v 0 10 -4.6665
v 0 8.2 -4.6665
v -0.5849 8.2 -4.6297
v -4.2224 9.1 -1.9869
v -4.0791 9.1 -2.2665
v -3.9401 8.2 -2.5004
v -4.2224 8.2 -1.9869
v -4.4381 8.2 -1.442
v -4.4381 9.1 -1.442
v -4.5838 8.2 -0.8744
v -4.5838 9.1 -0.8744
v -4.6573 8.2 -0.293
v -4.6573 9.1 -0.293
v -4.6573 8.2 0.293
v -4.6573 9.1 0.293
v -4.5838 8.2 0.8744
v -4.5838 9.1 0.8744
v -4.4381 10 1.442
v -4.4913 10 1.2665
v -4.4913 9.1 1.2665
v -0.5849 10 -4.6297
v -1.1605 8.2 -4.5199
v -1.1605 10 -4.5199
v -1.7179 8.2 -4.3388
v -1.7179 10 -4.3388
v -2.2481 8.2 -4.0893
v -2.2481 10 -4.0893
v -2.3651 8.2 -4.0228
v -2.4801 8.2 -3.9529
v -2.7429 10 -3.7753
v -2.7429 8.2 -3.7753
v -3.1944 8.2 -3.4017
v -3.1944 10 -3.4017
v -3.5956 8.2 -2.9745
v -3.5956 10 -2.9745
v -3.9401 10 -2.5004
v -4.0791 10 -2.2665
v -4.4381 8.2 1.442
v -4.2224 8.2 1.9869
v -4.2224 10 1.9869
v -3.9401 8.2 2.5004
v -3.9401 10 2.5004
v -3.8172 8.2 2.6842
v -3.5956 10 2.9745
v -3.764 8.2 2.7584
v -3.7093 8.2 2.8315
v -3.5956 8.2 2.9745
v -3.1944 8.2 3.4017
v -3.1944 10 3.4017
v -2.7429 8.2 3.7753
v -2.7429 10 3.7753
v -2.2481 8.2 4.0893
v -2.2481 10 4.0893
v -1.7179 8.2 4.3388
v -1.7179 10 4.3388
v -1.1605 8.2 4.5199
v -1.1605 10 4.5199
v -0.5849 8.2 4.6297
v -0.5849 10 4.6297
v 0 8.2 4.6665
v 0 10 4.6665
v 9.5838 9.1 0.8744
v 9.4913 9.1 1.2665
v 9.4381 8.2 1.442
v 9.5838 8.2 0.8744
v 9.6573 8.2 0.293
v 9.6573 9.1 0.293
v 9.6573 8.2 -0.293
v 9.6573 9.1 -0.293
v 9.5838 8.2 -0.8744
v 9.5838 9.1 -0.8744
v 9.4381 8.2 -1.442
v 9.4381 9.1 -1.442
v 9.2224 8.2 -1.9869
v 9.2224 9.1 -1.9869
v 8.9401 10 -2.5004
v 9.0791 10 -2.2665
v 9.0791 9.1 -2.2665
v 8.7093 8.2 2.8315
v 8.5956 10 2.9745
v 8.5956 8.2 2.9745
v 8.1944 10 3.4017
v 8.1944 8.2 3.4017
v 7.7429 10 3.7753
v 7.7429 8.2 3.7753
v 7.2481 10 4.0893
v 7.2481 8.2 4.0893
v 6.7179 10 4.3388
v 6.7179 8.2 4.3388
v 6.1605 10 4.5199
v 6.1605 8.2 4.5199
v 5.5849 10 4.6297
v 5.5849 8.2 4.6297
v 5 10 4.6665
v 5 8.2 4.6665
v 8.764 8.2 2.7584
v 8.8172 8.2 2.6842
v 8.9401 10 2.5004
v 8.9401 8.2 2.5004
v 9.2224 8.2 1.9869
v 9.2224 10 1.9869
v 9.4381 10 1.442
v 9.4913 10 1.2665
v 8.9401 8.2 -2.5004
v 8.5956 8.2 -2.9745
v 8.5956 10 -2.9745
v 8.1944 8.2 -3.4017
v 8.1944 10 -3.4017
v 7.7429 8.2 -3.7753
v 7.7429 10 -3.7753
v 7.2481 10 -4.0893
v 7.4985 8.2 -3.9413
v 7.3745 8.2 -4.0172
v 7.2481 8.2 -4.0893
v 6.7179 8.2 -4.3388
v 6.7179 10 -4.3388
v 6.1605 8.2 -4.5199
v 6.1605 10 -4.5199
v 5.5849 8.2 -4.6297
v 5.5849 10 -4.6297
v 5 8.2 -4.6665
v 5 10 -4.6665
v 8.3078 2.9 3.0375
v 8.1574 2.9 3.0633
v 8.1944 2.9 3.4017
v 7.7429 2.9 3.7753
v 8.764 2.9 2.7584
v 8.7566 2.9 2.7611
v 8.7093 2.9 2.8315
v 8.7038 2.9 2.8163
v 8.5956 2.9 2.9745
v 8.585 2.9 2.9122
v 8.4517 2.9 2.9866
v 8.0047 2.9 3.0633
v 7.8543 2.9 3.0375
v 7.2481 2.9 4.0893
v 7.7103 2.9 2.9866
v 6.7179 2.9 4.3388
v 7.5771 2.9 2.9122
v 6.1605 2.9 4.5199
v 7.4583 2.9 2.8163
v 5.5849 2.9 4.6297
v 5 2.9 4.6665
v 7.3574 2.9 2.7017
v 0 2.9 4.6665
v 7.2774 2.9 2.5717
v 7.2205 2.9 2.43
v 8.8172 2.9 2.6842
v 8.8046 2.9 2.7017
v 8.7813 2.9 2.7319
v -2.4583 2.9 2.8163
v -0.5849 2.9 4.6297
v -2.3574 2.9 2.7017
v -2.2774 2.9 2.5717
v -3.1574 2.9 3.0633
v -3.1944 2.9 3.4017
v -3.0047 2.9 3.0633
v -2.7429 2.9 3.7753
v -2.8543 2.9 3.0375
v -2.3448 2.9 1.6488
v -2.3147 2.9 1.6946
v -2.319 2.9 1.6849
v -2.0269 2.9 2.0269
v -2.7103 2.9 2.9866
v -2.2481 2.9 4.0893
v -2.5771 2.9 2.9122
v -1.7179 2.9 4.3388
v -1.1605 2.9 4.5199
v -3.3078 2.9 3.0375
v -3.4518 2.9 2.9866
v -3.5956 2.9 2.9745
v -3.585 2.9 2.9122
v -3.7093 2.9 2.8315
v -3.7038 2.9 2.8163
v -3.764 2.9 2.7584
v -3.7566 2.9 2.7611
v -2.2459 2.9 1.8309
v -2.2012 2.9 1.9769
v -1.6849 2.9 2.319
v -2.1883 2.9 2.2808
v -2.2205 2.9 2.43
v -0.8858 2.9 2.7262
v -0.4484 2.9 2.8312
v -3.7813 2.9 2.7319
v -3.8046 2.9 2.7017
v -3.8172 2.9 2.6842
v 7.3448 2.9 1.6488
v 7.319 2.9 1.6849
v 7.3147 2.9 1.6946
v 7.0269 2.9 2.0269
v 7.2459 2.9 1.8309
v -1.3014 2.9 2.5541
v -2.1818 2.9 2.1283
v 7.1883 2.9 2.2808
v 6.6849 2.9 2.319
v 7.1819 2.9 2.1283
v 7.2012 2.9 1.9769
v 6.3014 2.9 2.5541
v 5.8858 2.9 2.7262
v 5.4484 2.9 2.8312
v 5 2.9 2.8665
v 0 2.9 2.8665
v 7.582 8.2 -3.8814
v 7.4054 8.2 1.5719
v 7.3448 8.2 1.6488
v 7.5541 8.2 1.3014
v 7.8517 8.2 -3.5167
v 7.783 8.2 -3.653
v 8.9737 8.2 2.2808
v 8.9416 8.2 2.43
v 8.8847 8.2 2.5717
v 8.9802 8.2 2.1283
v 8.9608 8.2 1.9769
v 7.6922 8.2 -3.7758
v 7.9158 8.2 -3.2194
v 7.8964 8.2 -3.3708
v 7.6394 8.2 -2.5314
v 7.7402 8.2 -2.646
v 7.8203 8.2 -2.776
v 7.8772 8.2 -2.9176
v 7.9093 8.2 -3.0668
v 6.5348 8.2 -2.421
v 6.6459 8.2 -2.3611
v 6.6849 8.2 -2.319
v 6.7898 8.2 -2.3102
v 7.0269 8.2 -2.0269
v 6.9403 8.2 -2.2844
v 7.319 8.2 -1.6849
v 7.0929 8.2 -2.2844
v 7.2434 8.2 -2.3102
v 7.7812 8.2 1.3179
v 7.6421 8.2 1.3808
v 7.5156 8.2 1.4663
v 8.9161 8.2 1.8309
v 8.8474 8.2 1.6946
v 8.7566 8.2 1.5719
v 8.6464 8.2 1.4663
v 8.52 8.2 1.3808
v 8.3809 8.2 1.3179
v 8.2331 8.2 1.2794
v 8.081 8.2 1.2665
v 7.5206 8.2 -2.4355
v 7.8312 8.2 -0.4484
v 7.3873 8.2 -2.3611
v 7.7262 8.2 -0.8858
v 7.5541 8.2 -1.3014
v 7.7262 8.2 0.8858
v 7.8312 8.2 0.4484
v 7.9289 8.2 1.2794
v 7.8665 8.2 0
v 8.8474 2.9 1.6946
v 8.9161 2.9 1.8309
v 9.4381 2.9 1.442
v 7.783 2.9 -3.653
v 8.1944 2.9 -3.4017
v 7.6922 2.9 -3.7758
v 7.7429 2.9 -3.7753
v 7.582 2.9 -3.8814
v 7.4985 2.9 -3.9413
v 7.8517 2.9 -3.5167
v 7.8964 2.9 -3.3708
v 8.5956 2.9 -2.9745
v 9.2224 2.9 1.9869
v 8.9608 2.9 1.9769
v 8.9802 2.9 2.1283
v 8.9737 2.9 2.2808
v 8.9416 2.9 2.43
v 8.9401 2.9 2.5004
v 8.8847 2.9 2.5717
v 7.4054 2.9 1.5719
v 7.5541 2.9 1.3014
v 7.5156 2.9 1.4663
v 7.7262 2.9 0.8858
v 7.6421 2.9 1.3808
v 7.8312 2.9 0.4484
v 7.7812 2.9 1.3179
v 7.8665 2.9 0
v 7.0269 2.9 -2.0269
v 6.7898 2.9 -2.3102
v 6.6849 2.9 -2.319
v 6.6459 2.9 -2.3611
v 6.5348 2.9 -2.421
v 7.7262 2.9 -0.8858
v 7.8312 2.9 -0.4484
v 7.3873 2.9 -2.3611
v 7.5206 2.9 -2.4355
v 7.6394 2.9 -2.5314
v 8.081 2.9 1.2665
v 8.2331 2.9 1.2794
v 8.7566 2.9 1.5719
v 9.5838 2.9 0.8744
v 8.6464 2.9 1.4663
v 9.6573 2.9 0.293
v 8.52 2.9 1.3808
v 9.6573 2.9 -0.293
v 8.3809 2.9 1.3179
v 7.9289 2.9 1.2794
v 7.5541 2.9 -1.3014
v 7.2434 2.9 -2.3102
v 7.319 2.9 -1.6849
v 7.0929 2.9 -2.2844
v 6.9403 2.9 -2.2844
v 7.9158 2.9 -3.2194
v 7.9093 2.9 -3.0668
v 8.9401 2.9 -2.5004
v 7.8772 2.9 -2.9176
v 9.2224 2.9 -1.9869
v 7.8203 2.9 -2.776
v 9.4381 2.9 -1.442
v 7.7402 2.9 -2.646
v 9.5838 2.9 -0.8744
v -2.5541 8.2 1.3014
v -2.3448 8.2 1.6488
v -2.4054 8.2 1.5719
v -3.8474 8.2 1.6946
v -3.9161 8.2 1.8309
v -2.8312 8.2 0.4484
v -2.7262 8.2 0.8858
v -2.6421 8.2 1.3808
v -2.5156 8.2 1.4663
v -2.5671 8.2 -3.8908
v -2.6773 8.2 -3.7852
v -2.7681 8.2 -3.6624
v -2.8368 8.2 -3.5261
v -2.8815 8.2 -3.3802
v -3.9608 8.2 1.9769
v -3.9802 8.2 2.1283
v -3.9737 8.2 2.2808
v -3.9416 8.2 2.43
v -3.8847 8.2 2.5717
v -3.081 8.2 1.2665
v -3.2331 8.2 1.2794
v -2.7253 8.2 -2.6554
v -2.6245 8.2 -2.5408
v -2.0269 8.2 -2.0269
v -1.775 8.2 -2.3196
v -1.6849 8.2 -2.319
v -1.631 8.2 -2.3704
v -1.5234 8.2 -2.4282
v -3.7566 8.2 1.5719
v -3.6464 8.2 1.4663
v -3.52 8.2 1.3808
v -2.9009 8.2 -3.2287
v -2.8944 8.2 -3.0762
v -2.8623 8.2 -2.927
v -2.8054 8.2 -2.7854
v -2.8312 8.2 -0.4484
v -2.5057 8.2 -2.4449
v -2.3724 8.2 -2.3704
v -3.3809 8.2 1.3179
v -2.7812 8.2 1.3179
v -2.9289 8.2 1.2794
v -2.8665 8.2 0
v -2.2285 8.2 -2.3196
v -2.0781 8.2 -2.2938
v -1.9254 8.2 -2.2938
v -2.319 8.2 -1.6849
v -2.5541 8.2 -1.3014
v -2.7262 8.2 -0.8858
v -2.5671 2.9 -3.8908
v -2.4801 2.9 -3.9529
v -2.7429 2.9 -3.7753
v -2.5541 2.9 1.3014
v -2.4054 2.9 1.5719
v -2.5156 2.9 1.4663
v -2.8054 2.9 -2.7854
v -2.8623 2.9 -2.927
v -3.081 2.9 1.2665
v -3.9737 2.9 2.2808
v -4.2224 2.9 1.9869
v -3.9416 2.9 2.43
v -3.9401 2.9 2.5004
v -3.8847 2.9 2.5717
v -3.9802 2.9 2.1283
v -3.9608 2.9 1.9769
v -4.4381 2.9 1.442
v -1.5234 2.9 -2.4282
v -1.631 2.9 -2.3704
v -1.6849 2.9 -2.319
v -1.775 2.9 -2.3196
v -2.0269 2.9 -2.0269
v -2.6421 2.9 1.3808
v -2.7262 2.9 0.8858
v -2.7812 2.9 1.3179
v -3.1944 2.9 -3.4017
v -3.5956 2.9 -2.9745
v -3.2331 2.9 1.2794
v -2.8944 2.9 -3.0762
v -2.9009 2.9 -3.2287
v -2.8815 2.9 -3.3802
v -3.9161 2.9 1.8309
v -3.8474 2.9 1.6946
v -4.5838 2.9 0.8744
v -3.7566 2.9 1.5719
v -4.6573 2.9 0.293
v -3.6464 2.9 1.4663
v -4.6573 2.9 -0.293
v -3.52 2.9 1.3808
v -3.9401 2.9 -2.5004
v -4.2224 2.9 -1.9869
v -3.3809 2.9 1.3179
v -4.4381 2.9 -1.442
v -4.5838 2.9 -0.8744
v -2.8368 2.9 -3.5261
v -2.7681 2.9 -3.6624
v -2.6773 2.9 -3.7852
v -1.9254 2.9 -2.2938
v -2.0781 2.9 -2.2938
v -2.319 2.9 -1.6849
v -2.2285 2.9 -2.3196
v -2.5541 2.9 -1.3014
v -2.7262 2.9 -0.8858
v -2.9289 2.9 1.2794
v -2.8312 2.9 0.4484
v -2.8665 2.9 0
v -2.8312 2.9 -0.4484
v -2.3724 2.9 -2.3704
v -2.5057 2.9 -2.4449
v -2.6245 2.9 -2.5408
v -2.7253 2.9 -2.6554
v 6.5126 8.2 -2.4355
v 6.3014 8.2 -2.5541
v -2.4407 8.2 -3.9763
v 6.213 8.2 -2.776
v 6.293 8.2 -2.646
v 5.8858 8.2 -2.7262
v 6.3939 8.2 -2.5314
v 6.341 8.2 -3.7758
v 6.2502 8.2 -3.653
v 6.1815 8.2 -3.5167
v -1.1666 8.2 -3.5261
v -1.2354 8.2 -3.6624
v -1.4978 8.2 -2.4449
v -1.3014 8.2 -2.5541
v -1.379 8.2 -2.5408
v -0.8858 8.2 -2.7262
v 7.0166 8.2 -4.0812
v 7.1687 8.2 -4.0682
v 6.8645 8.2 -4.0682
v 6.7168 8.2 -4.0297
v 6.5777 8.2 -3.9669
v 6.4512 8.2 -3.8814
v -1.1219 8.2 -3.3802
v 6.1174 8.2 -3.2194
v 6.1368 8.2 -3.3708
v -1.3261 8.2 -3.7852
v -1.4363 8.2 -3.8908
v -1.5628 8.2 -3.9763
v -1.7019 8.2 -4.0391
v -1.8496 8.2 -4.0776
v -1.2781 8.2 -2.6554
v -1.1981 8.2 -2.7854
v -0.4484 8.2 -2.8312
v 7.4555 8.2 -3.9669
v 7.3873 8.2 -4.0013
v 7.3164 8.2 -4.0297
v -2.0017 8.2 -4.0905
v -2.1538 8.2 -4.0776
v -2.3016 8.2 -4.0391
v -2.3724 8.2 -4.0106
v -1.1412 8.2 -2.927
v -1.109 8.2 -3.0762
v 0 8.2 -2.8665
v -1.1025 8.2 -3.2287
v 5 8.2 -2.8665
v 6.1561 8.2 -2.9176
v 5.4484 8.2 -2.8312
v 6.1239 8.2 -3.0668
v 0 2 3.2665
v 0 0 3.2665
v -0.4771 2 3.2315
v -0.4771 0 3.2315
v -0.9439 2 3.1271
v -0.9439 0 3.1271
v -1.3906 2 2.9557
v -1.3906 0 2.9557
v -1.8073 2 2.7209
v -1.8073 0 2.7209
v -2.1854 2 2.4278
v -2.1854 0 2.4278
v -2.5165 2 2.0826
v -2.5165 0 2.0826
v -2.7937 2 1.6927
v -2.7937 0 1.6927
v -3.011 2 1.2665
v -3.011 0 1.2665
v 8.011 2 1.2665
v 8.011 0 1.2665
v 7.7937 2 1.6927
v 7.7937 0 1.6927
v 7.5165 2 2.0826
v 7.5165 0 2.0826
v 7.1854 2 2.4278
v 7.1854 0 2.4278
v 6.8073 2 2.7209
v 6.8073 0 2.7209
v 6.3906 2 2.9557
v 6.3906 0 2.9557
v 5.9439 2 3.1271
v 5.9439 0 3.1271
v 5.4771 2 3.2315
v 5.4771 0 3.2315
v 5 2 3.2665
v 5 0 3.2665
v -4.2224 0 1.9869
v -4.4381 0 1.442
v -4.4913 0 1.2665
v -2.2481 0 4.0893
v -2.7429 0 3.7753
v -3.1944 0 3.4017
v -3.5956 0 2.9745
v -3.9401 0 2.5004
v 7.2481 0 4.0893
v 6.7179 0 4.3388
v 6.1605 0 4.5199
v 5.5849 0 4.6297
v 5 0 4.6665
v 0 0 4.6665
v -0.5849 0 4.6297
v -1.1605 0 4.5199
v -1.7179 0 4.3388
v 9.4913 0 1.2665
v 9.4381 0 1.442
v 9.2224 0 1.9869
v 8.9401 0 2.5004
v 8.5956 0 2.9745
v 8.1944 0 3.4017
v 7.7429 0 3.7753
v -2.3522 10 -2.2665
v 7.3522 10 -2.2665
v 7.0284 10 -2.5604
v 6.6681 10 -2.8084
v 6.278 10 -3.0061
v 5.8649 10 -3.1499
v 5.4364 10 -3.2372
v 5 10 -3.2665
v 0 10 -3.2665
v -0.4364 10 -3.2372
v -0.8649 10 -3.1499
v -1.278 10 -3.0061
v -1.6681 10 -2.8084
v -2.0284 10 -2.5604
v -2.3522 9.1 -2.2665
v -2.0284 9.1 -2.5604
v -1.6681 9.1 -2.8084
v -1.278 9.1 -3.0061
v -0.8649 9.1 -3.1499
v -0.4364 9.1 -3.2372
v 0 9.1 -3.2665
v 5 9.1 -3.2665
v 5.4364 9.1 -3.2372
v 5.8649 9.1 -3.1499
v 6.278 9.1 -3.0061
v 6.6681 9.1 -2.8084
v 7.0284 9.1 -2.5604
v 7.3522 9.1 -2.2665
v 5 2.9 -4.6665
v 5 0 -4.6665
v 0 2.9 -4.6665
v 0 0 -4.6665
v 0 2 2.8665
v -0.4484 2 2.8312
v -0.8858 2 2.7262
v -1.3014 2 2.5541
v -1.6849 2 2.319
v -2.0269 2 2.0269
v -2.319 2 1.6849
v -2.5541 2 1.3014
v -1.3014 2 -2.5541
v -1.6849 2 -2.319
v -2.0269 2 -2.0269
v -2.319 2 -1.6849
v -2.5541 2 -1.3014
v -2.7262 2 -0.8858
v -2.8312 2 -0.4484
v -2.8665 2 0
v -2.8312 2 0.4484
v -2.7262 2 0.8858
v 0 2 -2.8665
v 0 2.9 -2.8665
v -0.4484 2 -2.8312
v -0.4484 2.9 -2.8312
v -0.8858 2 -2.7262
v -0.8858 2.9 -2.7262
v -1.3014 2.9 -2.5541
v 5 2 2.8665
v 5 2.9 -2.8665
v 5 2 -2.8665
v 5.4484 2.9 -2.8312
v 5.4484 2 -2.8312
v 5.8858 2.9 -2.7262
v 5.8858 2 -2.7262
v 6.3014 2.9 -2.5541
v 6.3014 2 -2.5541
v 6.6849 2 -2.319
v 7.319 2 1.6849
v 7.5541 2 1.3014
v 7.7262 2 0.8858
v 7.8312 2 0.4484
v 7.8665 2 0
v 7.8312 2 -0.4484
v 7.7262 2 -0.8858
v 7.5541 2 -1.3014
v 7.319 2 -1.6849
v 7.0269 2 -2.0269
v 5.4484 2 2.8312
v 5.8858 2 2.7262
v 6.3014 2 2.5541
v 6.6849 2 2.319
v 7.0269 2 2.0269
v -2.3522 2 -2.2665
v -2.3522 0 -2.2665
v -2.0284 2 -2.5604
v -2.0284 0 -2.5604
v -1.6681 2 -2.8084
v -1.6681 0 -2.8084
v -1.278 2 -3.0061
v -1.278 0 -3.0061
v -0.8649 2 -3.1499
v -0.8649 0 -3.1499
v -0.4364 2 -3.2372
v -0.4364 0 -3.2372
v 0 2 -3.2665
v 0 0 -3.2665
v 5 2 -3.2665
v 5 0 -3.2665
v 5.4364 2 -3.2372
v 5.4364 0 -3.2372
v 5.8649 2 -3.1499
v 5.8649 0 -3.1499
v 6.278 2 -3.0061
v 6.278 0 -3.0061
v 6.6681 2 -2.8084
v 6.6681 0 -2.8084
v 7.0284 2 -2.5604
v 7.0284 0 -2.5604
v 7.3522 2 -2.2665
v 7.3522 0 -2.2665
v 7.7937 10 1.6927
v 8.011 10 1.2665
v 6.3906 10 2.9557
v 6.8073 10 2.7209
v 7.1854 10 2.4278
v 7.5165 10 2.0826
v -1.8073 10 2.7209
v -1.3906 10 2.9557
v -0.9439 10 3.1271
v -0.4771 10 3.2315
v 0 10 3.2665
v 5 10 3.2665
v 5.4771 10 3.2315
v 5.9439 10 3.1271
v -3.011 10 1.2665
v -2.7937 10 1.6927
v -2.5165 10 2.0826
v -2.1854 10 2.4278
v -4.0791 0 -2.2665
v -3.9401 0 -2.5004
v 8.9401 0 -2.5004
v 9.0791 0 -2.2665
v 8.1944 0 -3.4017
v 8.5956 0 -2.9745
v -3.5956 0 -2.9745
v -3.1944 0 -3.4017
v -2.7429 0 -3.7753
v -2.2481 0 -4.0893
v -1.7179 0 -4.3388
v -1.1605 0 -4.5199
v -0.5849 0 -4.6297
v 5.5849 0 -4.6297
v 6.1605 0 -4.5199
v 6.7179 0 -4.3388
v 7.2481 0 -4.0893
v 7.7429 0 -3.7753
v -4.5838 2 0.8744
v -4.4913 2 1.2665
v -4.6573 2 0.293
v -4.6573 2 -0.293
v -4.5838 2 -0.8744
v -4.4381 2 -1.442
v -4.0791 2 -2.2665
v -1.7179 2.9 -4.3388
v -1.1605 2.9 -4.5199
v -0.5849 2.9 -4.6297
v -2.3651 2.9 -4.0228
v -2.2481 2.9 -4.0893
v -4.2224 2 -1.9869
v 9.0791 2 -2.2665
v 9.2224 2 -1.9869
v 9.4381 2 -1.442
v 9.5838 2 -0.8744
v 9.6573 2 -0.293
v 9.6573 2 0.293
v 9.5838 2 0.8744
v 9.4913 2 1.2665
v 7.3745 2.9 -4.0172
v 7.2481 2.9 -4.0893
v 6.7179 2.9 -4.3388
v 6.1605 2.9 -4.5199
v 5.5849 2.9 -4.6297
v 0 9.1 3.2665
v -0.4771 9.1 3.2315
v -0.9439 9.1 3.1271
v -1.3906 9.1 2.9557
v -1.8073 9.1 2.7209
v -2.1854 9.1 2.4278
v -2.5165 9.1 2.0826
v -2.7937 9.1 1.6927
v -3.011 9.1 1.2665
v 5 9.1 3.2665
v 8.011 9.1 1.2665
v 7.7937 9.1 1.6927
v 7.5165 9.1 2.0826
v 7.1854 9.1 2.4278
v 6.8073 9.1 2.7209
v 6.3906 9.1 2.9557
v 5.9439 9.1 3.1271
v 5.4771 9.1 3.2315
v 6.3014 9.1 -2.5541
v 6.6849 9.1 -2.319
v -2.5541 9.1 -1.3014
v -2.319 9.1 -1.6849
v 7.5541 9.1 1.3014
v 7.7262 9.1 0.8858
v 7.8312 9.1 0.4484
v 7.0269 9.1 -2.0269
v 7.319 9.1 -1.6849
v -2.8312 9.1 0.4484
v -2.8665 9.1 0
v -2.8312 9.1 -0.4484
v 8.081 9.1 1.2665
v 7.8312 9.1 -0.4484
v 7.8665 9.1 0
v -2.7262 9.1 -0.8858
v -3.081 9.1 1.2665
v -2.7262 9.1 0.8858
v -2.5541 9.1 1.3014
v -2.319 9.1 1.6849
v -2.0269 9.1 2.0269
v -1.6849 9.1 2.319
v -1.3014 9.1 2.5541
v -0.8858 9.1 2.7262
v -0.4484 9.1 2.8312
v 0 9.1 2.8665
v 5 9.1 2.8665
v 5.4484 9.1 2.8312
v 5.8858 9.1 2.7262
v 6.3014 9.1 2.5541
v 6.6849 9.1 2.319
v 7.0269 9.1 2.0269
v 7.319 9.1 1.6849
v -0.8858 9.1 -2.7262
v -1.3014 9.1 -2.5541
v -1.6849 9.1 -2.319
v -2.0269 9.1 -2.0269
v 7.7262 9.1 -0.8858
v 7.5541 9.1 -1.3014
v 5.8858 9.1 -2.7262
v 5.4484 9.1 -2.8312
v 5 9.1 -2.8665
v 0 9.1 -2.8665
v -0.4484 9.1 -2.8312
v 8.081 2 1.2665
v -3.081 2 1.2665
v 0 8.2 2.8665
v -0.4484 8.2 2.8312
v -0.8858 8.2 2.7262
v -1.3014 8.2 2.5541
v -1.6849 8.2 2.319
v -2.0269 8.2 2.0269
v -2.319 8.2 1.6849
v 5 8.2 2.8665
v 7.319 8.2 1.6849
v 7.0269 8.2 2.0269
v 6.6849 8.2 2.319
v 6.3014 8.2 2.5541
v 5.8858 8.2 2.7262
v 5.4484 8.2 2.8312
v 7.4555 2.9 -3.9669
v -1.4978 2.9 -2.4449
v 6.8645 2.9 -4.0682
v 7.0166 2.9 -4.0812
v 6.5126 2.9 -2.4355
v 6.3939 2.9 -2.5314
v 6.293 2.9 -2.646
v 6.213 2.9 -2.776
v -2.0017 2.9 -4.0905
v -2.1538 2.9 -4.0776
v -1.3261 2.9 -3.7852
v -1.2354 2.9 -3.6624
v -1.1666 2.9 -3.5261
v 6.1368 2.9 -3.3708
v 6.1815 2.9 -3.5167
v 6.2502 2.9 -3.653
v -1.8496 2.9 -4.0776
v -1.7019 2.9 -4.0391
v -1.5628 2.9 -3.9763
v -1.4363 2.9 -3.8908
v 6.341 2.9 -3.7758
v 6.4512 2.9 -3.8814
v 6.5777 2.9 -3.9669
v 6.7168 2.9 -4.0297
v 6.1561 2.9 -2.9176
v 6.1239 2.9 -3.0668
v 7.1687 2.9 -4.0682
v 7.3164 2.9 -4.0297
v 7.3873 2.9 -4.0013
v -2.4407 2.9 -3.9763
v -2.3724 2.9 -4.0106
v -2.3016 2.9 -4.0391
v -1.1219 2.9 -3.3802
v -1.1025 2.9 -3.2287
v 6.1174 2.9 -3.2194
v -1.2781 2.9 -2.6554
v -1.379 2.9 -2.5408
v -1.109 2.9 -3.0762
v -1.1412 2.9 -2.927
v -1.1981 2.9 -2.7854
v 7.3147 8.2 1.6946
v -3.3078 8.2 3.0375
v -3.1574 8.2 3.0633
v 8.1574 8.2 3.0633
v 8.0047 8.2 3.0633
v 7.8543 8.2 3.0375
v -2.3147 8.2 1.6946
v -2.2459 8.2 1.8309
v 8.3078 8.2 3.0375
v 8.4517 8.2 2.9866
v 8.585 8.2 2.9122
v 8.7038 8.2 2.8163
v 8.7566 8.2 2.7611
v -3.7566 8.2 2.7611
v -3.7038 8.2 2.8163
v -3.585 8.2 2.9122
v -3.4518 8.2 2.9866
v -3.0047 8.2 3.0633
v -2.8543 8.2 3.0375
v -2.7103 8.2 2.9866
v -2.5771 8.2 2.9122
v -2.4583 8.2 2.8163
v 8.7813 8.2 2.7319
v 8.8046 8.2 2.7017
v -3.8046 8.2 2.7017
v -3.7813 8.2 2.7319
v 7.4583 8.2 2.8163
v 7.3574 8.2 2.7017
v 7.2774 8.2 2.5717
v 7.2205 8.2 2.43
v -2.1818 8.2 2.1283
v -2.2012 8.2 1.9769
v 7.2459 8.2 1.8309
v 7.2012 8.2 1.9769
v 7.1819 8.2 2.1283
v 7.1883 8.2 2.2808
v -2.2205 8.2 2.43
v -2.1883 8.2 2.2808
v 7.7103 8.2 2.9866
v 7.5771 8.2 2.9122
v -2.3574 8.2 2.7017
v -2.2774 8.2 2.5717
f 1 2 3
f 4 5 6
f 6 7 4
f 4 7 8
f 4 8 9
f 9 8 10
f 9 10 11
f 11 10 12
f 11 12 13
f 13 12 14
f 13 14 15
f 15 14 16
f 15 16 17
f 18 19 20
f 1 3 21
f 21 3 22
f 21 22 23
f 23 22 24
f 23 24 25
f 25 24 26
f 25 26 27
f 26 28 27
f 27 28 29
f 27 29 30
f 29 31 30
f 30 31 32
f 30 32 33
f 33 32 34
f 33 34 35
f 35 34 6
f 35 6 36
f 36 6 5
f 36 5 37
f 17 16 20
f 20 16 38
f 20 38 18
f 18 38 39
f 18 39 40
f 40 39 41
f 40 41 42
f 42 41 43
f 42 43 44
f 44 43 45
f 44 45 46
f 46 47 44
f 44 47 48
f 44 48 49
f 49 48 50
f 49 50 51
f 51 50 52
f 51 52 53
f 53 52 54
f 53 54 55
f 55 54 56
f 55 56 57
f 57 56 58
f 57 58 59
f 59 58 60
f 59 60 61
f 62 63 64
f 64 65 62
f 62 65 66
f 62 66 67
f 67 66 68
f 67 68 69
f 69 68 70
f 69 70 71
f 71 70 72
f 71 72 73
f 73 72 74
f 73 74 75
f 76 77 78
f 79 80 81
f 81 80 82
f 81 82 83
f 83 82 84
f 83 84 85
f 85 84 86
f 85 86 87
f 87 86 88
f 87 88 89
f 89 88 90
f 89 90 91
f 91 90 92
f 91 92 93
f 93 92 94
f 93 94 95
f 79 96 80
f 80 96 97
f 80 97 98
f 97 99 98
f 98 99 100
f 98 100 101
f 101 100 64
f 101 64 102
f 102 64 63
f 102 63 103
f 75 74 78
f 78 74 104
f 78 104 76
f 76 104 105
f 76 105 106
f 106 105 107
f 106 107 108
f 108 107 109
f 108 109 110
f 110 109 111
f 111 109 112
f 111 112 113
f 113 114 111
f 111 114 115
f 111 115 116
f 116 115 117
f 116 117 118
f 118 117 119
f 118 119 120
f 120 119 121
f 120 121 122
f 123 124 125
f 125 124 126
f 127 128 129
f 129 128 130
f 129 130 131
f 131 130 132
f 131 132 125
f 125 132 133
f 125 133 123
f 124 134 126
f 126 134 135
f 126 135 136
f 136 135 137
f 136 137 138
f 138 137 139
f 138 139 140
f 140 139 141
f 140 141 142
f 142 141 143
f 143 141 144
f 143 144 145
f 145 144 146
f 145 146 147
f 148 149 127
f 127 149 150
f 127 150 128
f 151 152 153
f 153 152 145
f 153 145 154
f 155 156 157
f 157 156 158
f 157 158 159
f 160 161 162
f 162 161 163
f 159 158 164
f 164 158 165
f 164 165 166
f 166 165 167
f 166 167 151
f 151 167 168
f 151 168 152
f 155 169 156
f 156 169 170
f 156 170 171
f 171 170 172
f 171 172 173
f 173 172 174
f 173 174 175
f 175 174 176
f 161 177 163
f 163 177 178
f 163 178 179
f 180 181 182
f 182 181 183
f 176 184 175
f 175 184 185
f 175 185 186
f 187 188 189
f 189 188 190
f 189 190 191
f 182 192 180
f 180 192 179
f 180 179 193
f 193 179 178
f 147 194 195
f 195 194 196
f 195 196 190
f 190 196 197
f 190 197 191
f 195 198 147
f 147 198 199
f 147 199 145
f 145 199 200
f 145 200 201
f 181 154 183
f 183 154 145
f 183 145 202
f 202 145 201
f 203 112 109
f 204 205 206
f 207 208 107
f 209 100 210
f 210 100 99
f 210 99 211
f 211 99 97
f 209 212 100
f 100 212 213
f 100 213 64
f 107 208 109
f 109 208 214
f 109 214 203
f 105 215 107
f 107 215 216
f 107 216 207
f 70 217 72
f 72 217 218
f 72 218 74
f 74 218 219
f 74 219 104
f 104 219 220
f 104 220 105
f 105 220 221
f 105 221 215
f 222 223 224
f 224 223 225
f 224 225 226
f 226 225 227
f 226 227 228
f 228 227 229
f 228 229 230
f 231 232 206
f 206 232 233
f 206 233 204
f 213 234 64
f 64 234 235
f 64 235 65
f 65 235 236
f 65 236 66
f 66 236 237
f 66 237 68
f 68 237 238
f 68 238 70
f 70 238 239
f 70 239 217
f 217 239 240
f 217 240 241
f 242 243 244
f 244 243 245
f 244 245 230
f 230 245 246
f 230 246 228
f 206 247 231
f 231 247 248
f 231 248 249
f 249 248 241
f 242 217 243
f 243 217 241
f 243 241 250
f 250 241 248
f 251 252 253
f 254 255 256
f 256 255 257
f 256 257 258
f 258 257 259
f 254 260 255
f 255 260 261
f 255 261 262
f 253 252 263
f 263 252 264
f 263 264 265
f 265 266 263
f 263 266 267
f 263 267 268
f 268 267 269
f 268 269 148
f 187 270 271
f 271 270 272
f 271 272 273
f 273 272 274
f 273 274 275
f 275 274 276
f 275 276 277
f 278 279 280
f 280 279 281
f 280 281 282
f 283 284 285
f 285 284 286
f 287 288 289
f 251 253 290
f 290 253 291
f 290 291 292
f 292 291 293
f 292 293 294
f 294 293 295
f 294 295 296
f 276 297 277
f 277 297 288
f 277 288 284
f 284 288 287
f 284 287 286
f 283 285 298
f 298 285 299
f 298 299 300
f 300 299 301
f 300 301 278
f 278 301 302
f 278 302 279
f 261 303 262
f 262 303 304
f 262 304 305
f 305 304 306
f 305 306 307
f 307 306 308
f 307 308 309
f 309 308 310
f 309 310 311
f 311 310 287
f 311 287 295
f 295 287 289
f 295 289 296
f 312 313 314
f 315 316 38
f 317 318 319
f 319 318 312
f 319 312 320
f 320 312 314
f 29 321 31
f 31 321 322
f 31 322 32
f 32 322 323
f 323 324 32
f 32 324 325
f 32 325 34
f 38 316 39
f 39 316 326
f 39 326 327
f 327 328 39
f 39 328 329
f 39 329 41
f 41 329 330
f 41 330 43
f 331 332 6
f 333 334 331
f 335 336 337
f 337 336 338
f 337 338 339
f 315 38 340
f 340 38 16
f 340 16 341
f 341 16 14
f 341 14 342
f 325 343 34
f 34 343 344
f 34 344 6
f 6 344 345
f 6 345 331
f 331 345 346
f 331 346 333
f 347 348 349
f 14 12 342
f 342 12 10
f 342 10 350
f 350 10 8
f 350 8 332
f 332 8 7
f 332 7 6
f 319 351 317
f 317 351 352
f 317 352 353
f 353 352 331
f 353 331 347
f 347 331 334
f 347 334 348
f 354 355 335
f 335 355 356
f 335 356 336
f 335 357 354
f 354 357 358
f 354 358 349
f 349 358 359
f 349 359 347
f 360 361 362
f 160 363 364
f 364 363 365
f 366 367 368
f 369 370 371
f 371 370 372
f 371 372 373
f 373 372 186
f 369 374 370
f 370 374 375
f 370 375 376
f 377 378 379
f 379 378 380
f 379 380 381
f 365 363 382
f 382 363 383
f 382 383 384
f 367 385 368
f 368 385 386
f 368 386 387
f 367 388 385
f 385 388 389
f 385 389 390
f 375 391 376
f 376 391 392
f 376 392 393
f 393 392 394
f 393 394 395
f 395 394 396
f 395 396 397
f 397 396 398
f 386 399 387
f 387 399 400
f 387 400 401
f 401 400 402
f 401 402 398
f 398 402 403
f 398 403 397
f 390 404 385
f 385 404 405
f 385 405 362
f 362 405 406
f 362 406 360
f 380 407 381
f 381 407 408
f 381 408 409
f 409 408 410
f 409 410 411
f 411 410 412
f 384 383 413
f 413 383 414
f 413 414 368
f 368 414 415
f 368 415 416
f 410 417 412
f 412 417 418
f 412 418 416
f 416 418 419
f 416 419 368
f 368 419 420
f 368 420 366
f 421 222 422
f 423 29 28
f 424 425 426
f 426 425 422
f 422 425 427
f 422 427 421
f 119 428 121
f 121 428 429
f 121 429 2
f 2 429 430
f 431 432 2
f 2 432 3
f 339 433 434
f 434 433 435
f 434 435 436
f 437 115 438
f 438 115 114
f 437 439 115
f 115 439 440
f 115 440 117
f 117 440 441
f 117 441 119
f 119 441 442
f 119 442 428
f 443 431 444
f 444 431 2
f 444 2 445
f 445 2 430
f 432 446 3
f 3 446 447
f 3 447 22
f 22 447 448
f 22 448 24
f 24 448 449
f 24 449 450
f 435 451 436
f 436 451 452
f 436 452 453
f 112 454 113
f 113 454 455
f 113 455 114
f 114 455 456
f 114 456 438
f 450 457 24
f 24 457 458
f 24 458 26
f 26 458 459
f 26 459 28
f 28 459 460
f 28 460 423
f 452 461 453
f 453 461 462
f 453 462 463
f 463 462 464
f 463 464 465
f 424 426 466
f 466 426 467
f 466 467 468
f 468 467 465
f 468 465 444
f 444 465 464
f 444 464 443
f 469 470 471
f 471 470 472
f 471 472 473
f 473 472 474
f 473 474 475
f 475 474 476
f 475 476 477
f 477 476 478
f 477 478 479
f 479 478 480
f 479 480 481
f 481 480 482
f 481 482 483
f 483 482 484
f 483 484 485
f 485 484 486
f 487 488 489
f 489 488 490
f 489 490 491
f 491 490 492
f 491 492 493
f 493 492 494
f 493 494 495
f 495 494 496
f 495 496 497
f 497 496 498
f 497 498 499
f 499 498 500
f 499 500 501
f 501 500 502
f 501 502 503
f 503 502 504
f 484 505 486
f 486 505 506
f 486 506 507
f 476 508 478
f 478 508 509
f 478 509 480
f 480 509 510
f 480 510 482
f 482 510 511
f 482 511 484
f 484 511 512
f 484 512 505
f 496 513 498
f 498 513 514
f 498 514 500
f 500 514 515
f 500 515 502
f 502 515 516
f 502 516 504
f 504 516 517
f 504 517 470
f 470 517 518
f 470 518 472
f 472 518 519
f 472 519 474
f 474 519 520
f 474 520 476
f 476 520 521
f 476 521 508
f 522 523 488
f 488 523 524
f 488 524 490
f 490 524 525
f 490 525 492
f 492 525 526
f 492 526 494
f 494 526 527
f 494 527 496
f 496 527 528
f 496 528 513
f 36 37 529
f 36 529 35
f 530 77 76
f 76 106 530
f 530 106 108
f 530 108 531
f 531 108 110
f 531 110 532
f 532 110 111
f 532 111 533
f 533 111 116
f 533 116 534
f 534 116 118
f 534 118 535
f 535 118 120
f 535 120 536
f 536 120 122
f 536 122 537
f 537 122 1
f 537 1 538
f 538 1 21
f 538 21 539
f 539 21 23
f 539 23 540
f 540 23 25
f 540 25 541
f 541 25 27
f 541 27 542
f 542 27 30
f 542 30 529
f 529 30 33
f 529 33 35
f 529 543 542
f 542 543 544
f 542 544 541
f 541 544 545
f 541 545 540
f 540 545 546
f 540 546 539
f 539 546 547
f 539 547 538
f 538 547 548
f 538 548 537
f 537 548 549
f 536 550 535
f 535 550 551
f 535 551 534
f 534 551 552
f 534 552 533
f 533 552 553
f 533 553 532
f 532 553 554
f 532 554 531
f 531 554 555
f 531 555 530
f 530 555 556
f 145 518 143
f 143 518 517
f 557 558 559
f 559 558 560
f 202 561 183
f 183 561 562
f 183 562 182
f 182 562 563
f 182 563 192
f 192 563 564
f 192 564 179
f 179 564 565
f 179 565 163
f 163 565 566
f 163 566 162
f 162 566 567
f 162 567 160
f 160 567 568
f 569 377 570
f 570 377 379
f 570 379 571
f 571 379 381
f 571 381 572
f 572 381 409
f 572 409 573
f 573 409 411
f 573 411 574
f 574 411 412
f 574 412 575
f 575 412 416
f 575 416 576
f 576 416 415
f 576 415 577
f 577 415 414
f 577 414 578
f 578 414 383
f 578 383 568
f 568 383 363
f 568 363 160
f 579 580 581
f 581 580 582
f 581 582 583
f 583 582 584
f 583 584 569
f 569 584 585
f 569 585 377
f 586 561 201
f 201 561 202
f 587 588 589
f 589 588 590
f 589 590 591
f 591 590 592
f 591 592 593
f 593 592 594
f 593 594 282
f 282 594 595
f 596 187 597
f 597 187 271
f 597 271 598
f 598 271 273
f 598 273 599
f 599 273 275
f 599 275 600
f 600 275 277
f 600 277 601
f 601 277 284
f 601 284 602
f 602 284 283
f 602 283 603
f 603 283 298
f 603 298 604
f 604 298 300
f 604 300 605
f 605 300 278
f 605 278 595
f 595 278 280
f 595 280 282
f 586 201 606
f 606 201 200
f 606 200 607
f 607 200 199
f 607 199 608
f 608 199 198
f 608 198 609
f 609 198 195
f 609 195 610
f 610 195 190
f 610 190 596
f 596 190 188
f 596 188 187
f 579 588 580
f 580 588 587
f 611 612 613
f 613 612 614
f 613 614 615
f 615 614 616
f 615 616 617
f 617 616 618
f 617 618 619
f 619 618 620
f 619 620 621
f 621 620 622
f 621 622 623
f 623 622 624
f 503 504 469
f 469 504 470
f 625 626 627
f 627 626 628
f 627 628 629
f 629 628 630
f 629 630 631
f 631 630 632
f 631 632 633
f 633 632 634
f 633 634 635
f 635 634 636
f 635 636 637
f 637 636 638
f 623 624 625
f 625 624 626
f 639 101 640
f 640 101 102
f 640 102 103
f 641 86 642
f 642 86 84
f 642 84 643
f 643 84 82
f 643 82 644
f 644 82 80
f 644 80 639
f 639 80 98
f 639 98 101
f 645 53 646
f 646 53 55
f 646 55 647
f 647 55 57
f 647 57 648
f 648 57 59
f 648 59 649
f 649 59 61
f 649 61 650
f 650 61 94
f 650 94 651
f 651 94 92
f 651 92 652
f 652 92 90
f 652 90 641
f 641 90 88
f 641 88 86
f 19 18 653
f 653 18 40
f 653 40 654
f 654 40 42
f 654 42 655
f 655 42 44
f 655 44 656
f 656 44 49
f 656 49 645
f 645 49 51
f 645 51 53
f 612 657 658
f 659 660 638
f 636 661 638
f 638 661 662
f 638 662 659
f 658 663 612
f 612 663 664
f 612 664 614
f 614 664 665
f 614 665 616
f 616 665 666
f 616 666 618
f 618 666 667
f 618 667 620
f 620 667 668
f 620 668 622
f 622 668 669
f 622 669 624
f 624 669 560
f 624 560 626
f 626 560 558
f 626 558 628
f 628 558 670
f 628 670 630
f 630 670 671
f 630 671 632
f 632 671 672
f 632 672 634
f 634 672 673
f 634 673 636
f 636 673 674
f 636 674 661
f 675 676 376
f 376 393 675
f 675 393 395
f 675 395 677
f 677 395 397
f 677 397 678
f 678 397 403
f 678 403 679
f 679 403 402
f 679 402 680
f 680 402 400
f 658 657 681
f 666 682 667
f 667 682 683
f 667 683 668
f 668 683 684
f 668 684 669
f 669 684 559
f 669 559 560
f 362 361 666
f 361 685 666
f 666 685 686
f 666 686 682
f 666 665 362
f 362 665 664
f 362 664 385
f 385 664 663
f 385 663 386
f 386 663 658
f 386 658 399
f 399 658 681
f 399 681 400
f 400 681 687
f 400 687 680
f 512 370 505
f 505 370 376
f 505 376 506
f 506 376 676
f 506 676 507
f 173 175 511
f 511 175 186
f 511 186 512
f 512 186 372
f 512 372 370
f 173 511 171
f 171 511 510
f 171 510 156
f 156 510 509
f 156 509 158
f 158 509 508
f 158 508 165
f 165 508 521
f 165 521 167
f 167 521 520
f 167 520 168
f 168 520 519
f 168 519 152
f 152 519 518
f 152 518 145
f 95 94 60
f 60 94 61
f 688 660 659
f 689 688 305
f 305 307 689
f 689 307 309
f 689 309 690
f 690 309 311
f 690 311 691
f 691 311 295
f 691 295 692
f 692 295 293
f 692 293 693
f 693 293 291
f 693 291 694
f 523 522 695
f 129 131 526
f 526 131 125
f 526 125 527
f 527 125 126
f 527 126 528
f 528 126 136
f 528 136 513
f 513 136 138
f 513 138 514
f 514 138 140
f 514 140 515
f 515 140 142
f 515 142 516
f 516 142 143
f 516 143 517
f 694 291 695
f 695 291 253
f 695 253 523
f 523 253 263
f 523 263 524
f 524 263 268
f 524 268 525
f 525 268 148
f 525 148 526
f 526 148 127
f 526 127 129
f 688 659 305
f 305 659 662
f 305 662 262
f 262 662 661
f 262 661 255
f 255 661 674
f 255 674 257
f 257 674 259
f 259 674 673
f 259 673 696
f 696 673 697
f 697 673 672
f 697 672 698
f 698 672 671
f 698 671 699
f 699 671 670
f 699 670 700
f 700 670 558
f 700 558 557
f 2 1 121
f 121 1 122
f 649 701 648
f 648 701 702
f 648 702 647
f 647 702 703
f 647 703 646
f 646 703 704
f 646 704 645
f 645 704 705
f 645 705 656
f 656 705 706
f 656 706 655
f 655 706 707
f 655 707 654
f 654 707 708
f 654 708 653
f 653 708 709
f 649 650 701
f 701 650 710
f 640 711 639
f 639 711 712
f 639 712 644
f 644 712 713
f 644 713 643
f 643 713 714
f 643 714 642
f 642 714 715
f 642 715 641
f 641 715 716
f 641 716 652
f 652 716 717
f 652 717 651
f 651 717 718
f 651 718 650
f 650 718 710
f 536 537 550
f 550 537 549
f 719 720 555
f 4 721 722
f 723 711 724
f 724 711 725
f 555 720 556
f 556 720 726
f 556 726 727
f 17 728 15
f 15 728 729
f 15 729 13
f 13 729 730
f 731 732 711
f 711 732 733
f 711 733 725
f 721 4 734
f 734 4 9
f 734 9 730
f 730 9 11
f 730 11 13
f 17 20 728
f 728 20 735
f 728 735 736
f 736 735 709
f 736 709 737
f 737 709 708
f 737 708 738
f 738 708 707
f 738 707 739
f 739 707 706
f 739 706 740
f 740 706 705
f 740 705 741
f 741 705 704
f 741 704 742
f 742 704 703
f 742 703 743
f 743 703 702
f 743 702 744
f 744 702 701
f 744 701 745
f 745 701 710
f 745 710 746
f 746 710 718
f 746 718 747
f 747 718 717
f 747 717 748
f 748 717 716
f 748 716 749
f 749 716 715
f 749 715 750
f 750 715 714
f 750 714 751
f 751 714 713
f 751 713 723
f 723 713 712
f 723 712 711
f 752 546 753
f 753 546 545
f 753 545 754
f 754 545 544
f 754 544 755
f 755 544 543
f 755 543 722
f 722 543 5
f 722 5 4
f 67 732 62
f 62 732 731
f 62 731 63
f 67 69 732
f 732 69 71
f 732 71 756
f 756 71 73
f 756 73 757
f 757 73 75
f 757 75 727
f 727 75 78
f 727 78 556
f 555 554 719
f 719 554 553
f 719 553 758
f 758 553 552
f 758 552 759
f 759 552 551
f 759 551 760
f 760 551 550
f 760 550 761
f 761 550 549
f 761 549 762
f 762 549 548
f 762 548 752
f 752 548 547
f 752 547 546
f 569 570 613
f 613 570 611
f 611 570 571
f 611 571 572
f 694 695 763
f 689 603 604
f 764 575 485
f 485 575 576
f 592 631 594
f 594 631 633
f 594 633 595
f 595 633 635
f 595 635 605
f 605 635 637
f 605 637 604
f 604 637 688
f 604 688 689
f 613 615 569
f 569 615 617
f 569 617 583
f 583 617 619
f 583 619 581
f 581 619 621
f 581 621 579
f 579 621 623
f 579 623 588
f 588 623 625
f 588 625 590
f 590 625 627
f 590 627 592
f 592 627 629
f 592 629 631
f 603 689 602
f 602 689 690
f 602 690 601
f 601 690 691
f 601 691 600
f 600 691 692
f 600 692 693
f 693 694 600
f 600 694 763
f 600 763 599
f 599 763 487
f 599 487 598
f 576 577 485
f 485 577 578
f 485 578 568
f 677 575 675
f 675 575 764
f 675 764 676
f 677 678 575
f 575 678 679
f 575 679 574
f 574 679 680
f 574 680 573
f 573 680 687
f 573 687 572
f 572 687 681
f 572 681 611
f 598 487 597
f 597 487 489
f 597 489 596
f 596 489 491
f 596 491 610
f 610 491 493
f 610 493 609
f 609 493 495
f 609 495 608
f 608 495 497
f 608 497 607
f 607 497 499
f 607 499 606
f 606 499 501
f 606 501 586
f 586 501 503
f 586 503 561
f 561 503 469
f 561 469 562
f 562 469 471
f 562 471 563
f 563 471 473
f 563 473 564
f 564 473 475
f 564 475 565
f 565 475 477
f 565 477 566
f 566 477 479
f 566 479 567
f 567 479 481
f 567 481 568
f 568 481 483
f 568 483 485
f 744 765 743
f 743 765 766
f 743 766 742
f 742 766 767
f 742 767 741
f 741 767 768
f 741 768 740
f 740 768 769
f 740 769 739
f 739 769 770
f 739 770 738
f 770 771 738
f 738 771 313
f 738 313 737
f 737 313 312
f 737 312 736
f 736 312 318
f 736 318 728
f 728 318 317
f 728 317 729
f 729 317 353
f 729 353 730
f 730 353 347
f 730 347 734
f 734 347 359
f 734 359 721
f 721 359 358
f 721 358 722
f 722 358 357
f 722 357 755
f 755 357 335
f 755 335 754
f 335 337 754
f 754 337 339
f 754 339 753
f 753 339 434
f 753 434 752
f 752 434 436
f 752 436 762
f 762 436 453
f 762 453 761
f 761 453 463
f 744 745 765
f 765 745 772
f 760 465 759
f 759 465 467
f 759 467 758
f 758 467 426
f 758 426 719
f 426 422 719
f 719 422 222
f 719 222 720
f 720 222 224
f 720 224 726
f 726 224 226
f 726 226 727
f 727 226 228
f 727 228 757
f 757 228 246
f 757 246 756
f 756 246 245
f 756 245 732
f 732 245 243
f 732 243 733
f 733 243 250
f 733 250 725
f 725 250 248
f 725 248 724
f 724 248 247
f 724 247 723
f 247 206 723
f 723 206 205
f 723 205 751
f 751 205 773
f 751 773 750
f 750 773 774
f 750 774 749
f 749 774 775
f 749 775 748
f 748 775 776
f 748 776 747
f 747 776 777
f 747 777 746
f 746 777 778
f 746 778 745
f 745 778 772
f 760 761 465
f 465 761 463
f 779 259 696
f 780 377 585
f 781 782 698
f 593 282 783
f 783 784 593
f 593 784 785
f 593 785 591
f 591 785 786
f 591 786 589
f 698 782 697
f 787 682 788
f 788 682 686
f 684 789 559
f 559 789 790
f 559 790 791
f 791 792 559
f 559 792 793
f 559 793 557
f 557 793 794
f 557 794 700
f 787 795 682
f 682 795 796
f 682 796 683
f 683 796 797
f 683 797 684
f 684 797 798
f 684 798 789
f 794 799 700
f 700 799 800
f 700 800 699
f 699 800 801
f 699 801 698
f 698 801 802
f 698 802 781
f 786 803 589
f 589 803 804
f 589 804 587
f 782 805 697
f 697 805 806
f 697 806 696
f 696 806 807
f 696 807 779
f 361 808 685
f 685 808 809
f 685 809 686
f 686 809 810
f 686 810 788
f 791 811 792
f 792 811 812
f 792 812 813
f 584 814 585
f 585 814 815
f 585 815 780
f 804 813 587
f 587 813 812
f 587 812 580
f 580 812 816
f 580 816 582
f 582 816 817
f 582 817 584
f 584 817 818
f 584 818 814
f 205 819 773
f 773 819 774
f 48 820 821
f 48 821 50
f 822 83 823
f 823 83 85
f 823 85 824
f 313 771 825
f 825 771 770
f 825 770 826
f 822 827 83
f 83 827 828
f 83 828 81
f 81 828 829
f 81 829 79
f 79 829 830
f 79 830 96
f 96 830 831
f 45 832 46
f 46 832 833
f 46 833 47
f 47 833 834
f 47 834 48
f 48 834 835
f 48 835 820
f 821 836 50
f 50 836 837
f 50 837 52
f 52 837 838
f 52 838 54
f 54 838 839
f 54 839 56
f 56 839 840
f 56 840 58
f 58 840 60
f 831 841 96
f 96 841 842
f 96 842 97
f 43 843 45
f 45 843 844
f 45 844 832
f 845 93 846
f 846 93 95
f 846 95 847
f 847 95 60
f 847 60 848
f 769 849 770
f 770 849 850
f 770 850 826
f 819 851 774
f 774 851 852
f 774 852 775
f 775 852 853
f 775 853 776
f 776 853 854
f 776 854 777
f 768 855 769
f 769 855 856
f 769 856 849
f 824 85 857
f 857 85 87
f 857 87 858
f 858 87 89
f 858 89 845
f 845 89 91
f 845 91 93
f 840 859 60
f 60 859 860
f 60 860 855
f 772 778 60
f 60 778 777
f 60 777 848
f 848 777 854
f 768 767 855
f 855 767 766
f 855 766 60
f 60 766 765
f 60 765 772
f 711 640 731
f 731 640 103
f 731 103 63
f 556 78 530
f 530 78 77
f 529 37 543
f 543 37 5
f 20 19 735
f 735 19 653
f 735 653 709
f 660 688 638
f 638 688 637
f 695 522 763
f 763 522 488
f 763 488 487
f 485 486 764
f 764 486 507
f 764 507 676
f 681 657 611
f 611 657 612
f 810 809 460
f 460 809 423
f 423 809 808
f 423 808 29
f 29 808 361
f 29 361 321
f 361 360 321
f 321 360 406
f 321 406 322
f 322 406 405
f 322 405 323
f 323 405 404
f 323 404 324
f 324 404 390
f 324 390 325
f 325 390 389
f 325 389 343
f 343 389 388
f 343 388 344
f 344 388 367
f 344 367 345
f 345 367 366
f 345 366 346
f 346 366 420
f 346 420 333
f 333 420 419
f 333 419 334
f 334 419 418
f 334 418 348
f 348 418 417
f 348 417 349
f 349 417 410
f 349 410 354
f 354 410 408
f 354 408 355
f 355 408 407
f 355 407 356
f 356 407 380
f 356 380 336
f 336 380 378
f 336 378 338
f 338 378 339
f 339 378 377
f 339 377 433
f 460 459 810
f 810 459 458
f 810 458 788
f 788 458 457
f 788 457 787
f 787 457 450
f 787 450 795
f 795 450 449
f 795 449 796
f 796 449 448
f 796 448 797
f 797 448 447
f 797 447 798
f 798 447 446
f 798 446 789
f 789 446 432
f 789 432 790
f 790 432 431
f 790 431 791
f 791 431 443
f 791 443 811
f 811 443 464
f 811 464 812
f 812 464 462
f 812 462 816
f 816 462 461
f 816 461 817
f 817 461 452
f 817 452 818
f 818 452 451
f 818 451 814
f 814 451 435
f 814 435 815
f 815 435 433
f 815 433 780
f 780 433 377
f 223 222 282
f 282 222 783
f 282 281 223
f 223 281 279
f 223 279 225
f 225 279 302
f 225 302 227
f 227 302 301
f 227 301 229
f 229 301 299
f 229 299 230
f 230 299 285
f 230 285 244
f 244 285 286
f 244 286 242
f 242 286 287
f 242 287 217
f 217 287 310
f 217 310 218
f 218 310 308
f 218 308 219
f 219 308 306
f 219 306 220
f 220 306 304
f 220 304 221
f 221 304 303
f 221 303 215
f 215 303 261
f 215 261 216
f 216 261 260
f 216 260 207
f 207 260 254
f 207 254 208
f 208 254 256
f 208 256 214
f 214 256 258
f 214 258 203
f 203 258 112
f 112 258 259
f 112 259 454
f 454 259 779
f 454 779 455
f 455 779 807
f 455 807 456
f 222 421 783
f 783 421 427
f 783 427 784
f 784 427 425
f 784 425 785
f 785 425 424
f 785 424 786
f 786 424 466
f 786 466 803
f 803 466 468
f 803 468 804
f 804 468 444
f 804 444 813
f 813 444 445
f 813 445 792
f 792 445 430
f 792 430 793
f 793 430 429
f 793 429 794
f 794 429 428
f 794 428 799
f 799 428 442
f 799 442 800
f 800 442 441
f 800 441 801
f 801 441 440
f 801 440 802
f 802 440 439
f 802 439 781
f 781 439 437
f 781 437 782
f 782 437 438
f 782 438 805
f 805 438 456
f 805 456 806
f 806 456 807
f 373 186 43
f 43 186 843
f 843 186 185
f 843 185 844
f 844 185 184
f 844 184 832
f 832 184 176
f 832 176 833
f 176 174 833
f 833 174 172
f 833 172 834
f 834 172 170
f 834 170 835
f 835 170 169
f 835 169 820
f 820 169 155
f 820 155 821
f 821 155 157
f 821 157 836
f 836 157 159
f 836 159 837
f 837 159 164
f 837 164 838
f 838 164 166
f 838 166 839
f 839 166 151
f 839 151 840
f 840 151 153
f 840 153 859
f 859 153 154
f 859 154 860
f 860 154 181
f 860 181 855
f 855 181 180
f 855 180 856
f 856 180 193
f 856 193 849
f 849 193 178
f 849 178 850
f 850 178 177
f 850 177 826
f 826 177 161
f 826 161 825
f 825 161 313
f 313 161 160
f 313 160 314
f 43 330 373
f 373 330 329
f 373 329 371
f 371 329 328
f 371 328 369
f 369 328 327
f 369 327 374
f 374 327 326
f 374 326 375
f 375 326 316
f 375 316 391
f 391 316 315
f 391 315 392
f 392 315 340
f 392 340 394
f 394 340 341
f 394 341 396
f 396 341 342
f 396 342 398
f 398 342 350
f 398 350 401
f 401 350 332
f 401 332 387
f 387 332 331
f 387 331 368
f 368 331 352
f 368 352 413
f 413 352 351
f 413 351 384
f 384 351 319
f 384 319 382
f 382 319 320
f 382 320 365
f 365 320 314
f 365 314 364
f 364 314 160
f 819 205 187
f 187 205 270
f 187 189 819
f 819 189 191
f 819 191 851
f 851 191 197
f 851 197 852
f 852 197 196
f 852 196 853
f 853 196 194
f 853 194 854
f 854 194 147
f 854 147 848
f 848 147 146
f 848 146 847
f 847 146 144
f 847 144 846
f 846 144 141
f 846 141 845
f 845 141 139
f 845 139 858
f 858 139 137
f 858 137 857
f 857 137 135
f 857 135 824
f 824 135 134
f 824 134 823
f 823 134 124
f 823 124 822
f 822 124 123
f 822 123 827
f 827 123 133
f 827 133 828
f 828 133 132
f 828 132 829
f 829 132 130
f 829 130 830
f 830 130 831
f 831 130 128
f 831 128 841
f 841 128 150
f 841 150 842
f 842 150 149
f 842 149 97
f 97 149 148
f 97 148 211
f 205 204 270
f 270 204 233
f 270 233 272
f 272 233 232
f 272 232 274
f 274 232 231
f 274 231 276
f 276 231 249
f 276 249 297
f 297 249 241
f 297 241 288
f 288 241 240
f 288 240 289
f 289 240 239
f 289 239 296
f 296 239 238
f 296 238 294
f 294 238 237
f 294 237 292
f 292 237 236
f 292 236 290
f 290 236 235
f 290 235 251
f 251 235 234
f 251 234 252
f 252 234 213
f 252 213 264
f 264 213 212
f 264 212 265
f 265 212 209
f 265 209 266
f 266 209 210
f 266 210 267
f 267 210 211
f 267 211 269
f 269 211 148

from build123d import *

# Parameters (mm, degrees)
BOSS_EXTRUDE1_DEPTH = 10
BOSS_EXTRUDE2_DEPTH = 7.1
SKETCH3_W           = 14.024598218
SKETCH3_H           = 5.3
CUT_EXTRUDE1_DEPTH  = 10
SKETCH4_W           = 15
SKETCH4_H           = 3.533
CUT_EXTRUDE2_DEPTH  = 0.9
SKETCH5_W           = 15
SKETCH5_H           = 3.533
CUT_EXTRUDE3_DEPTH  = 2
SKETCH7_R           = 0.9
BOSS_EXTRUDE3_DEPTH = 7.1
SKETCH8_W           = 2.379394034
SKETCH8_H           = 5.3
CUT_EXTRUDE4_DEPTH  = 15


with BuildPart() as part:
    # Sketch1 → Boss-Extrude1 (new body)
    with BuildSketch(Plane(origin=(0, 0, 0), x_dir=(1, 0, 0), z_dir=(0, 1, 0))):
        with BuildLine():
            Line((0, 4.6665), (5, 4.6665))
            ThreePointArc((5, 4.6665), (9.6665, 0), (5, -4.6665))
            Line((5, -4.6665), (0, -4.6665))
            ThreePointArc((0, -4.6665), (-4.6665, 0), (0, 4.6665))
        make_face()
        with BuildLine():
            Line((0, 3.2665), (5, 3.2665))
            ThreePointArc((5, 3.2665), (8.2665, 0), (5, -3.2665))
            Line((5, -3.2665), (0, -3.2665))
            ThreePointArc((0, -3.2665), (-3.2665, 0), (0, 3.2665))
        make_face(mode=Mode.SUBTRACT)
    extrude(amount=BOSS_EXTRUDE1_DEPTH)

    # Sketch2 → Boss-Extrude2 (add)
    with BuildSketch(Plane(origin=(0, 2, 0), x_dir=(1, 0, 0), z_dir=(0, 1, 0))):
        with BuildLine():
            Line((0, 3.2665), (5, 3.2665))
            ThreePointArc((5, 3.2665), (8.2665, 0), (5, -3.2665))
            Line((5, -3.2665), (0, -3.2665))
            ThreePointArc((0, -3.2665), (-3.2665, 0), (0, 3.2665))
        make_face()
        with BuildLine():
            Line((0, 2.8665), (5, 2.8665))
            ThreePointArc((5, 2.8665), (7.8665, 0), (5, -2.8665))
            Line((5, -2.8665), (0, -2.8665))
            ThreePointArc((0, -2.8665), (-2.8665, 0), (0, 2.8665))
        make_face(mode=Mode.SUBTRACT)
    extrude(amount=BOSS_EXTRUDE2_DEPTH)

    # Sketch3 → Cut-Extrude1 (cut)
    with BuildSketch(Plane.XY.offset(4.6665)):
        with Locations((2.500000001, 5.55)):
            Rectangle(SKETCH3_W, SKETCH3_H)
    extrude(amount=-CUT_EXTRUDE1_DEPTH, mode=Mode.SUBTRACT)

    # Sketch4 → Cut-Extrude2 (cut)
    with BuildSketch(Plane(origin=(0, 10, 0), x_dir=(1, 0, 0), z_dir=(0, 1, 0))):
        with Locations((2.5, 0.5)):
            Rectangle(SKETCH4_W, SKETCH4_H)
    extrude(amount=-CUT_EXTRUDE2_DEPTH, mode=Mode.SUBTRACT)

    # Sketch5 → Cut-Extrude3 (cut)
    with BuildSketch(Plane.XZ):
        with Locations((2.5, -0.5)):
            Rectangle(SKETCH5_W, SKETCH5_H)
    extrude(amount=-CUT_EXTRUDE3_DEPTH, mode=Mode.SUBTRACT)

    # Sketch7 → Boss-Extrude3 (add)
    with BuildSketch(Plane(origin=(0, 2, 0), x_dir=(1, 0, 0), z_dir=(0, 1, 0))):
        with Locations((-2.001737946, 3.19054344)):
            Circle(SKETCH7_R)
        with Locations((7.016622753, 3.181156224)):
            Circle(SKETCH7_R)
        with Locations((-3.081038786, -2.1665)):
            Circle(SKETCH7_R)
        with Locations((8.081038786, -2.1665)):
            Circle(SKETCH7_R)
    extrude(amount=BOSS_EXTRUDE3_DEPTH)

    # Sketch8 → Cut-Extrude4 (cut)
    with BuildSketch(Plane(origin=(10, 0, 0), x_dir=(0, 0, -1), z_dir=(1, 0, 0))):
        with Locations((0, 5.55)):
            Rectangle(SKETCH8_W, SKETCH8_H)
    extrude(amount=-CUT_EXTRUDE4_DEPTH, mode=Mode.SUBTRACT)


solid = part.part
